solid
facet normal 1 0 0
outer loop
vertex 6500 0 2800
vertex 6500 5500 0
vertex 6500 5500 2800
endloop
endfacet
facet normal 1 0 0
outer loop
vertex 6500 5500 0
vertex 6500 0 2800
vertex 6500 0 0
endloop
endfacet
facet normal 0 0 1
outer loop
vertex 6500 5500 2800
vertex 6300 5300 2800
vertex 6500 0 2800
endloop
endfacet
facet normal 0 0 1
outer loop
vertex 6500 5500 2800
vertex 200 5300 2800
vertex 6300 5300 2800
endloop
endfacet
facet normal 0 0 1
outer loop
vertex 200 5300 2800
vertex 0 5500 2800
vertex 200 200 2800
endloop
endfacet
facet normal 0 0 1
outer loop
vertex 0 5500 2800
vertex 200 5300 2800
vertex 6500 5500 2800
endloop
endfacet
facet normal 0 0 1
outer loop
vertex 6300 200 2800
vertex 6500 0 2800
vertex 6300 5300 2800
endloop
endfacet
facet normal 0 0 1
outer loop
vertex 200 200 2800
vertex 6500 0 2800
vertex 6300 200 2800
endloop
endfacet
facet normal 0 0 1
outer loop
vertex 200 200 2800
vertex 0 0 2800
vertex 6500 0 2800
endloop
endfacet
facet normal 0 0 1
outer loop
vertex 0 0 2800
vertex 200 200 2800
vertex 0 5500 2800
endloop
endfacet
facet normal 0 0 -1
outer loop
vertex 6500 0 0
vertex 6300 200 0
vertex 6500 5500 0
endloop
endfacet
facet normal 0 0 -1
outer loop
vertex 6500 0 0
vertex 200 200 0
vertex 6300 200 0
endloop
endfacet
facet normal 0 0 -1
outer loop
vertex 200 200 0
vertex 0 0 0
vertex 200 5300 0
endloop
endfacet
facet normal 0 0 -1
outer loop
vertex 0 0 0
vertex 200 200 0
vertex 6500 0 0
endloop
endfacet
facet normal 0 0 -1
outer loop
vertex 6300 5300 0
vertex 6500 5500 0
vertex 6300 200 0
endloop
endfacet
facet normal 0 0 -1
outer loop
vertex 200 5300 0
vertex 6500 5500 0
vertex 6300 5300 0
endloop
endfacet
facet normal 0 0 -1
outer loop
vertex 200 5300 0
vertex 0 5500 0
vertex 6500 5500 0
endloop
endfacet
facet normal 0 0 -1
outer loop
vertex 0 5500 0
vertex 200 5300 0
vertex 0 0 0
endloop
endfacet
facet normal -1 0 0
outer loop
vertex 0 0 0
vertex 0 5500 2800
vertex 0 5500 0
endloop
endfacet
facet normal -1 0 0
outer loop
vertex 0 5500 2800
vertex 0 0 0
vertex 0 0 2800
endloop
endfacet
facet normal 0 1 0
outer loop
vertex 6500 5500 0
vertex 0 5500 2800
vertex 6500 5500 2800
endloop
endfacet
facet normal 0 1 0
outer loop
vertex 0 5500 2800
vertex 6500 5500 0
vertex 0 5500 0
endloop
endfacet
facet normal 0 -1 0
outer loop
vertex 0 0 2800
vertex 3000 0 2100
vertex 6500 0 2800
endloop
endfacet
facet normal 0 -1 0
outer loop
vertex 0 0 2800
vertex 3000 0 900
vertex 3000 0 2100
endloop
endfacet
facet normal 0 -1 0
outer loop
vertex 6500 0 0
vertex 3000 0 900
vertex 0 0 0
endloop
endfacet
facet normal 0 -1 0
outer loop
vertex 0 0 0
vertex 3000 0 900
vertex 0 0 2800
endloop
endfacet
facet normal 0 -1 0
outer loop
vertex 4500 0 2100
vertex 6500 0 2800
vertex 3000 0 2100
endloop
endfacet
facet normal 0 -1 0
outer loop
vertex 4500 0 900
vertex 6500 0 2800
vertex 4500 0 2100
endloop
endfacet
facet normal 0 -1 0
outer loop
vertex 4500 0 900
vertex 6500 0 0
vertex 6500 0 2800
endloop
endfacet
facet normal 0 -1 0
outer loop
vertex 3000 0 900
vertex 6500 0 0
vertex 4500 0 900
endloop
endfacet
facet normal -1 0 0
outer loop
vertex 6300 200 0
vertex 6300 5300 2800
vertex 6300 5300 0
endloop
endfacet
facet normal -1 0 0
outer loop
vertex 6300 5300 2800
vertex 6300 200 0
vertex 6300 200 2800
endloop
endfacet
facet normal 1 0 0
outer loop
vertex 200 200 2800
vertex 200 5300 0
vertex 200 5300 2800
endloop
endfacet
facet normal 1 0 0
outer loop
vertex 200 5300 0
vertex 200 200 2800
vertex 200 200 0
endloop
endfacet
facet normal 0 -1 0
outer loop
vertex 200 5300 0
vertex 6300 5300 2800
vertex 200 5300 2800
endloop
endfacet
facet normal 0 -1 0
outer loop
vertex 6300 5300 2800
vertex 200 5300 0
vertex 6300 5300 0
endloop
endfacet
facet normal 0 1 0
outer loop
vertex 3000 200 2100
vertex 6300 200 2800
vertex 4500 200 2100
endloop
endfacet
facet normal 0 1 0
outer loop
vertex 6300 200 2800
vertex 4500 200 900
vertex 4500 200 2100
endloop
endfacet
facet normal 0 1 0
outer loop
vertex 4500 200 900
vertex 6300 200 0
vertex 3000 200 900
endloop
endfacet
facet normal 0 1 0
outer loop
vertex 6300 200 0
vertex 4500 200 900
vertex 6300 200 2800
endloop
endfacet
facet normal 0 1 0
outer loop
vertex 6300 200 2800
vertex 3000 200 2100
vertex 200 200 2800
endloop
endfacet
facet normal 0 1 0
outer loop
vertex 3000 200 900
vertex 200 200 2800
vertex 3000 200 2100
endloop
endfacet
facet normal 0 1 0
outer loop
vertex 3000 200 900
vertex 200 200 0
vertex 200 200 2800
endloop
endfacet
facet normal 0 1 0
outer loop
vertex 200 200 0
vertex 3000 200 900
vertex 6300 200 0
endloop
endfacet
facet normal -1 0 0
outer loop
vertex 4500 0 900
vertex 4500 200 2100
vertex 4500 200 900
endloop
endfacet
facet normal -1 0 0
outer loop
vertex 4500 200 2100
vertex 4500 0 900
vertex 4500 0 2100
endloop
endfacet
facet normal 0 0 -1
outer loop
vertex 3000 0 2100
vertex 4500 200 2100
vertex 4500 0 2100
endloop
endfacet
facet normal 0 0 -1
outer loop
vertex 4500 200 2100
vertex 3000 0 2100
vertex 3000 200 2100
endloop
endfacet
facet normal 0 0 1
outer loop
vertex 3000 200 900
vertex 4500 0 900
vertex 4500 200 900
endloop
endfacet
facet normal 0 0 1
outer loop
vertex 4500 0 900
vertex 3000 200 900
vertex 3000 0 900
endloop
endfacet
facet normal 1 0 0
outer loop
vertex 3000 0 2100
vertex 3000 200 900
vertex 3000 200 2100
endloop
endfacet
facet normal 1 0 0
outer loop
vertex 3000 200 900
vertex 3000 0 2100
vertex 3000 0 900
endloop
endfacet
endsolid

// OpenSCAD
// Concrete 3D Printed Room - Parametric Design
// All measurements in millimeters (mm)

// === ROOM DIMENSIONS ===
room_length = 6500;        // 5 meters
room_width = 5500;         // 4 meters  
wall_height = 2800;        // 2.8 meters (standard ceiling height)
wall_thickness = 200;      // 20 cm (typical concrete 3D print)

// === DOOR ===
door_width = 800;          // 90 cm (standard door)
door_height = 2100;        // 2.1 meters
door_position = 1000;      // 1 meter from left corner

// === WINDOW ===
window_width = 1500;       // 1.5 meters wide
window_height = 1200;      // 1.2 meters tall
window_position = 3000;    // 3 meters from left corner
window_sill_height = 900;  // 90 cm from floor

// === GEOMETRY ===
module room() {
    difference() {
        // Outer walls (solid block)
        cube([room_length, room_width, wall_height]);
        
        // Interior cavity (hollow out the room)
        translate([wall_thickness, wall_thickness, 0])
            cube([
                room_length - 2*wall_thickness,
                room_width - 2*wall_thickness,
                wall_height + 100  // Extra height to ensure clean cut
            ]);
        
        // Window opening (front wall)
        translate([window_position, -10, window_sill_height])
            cube([window_width, wall_thickness + 20, window_height]);
    }
}

// Generate the room
room();
